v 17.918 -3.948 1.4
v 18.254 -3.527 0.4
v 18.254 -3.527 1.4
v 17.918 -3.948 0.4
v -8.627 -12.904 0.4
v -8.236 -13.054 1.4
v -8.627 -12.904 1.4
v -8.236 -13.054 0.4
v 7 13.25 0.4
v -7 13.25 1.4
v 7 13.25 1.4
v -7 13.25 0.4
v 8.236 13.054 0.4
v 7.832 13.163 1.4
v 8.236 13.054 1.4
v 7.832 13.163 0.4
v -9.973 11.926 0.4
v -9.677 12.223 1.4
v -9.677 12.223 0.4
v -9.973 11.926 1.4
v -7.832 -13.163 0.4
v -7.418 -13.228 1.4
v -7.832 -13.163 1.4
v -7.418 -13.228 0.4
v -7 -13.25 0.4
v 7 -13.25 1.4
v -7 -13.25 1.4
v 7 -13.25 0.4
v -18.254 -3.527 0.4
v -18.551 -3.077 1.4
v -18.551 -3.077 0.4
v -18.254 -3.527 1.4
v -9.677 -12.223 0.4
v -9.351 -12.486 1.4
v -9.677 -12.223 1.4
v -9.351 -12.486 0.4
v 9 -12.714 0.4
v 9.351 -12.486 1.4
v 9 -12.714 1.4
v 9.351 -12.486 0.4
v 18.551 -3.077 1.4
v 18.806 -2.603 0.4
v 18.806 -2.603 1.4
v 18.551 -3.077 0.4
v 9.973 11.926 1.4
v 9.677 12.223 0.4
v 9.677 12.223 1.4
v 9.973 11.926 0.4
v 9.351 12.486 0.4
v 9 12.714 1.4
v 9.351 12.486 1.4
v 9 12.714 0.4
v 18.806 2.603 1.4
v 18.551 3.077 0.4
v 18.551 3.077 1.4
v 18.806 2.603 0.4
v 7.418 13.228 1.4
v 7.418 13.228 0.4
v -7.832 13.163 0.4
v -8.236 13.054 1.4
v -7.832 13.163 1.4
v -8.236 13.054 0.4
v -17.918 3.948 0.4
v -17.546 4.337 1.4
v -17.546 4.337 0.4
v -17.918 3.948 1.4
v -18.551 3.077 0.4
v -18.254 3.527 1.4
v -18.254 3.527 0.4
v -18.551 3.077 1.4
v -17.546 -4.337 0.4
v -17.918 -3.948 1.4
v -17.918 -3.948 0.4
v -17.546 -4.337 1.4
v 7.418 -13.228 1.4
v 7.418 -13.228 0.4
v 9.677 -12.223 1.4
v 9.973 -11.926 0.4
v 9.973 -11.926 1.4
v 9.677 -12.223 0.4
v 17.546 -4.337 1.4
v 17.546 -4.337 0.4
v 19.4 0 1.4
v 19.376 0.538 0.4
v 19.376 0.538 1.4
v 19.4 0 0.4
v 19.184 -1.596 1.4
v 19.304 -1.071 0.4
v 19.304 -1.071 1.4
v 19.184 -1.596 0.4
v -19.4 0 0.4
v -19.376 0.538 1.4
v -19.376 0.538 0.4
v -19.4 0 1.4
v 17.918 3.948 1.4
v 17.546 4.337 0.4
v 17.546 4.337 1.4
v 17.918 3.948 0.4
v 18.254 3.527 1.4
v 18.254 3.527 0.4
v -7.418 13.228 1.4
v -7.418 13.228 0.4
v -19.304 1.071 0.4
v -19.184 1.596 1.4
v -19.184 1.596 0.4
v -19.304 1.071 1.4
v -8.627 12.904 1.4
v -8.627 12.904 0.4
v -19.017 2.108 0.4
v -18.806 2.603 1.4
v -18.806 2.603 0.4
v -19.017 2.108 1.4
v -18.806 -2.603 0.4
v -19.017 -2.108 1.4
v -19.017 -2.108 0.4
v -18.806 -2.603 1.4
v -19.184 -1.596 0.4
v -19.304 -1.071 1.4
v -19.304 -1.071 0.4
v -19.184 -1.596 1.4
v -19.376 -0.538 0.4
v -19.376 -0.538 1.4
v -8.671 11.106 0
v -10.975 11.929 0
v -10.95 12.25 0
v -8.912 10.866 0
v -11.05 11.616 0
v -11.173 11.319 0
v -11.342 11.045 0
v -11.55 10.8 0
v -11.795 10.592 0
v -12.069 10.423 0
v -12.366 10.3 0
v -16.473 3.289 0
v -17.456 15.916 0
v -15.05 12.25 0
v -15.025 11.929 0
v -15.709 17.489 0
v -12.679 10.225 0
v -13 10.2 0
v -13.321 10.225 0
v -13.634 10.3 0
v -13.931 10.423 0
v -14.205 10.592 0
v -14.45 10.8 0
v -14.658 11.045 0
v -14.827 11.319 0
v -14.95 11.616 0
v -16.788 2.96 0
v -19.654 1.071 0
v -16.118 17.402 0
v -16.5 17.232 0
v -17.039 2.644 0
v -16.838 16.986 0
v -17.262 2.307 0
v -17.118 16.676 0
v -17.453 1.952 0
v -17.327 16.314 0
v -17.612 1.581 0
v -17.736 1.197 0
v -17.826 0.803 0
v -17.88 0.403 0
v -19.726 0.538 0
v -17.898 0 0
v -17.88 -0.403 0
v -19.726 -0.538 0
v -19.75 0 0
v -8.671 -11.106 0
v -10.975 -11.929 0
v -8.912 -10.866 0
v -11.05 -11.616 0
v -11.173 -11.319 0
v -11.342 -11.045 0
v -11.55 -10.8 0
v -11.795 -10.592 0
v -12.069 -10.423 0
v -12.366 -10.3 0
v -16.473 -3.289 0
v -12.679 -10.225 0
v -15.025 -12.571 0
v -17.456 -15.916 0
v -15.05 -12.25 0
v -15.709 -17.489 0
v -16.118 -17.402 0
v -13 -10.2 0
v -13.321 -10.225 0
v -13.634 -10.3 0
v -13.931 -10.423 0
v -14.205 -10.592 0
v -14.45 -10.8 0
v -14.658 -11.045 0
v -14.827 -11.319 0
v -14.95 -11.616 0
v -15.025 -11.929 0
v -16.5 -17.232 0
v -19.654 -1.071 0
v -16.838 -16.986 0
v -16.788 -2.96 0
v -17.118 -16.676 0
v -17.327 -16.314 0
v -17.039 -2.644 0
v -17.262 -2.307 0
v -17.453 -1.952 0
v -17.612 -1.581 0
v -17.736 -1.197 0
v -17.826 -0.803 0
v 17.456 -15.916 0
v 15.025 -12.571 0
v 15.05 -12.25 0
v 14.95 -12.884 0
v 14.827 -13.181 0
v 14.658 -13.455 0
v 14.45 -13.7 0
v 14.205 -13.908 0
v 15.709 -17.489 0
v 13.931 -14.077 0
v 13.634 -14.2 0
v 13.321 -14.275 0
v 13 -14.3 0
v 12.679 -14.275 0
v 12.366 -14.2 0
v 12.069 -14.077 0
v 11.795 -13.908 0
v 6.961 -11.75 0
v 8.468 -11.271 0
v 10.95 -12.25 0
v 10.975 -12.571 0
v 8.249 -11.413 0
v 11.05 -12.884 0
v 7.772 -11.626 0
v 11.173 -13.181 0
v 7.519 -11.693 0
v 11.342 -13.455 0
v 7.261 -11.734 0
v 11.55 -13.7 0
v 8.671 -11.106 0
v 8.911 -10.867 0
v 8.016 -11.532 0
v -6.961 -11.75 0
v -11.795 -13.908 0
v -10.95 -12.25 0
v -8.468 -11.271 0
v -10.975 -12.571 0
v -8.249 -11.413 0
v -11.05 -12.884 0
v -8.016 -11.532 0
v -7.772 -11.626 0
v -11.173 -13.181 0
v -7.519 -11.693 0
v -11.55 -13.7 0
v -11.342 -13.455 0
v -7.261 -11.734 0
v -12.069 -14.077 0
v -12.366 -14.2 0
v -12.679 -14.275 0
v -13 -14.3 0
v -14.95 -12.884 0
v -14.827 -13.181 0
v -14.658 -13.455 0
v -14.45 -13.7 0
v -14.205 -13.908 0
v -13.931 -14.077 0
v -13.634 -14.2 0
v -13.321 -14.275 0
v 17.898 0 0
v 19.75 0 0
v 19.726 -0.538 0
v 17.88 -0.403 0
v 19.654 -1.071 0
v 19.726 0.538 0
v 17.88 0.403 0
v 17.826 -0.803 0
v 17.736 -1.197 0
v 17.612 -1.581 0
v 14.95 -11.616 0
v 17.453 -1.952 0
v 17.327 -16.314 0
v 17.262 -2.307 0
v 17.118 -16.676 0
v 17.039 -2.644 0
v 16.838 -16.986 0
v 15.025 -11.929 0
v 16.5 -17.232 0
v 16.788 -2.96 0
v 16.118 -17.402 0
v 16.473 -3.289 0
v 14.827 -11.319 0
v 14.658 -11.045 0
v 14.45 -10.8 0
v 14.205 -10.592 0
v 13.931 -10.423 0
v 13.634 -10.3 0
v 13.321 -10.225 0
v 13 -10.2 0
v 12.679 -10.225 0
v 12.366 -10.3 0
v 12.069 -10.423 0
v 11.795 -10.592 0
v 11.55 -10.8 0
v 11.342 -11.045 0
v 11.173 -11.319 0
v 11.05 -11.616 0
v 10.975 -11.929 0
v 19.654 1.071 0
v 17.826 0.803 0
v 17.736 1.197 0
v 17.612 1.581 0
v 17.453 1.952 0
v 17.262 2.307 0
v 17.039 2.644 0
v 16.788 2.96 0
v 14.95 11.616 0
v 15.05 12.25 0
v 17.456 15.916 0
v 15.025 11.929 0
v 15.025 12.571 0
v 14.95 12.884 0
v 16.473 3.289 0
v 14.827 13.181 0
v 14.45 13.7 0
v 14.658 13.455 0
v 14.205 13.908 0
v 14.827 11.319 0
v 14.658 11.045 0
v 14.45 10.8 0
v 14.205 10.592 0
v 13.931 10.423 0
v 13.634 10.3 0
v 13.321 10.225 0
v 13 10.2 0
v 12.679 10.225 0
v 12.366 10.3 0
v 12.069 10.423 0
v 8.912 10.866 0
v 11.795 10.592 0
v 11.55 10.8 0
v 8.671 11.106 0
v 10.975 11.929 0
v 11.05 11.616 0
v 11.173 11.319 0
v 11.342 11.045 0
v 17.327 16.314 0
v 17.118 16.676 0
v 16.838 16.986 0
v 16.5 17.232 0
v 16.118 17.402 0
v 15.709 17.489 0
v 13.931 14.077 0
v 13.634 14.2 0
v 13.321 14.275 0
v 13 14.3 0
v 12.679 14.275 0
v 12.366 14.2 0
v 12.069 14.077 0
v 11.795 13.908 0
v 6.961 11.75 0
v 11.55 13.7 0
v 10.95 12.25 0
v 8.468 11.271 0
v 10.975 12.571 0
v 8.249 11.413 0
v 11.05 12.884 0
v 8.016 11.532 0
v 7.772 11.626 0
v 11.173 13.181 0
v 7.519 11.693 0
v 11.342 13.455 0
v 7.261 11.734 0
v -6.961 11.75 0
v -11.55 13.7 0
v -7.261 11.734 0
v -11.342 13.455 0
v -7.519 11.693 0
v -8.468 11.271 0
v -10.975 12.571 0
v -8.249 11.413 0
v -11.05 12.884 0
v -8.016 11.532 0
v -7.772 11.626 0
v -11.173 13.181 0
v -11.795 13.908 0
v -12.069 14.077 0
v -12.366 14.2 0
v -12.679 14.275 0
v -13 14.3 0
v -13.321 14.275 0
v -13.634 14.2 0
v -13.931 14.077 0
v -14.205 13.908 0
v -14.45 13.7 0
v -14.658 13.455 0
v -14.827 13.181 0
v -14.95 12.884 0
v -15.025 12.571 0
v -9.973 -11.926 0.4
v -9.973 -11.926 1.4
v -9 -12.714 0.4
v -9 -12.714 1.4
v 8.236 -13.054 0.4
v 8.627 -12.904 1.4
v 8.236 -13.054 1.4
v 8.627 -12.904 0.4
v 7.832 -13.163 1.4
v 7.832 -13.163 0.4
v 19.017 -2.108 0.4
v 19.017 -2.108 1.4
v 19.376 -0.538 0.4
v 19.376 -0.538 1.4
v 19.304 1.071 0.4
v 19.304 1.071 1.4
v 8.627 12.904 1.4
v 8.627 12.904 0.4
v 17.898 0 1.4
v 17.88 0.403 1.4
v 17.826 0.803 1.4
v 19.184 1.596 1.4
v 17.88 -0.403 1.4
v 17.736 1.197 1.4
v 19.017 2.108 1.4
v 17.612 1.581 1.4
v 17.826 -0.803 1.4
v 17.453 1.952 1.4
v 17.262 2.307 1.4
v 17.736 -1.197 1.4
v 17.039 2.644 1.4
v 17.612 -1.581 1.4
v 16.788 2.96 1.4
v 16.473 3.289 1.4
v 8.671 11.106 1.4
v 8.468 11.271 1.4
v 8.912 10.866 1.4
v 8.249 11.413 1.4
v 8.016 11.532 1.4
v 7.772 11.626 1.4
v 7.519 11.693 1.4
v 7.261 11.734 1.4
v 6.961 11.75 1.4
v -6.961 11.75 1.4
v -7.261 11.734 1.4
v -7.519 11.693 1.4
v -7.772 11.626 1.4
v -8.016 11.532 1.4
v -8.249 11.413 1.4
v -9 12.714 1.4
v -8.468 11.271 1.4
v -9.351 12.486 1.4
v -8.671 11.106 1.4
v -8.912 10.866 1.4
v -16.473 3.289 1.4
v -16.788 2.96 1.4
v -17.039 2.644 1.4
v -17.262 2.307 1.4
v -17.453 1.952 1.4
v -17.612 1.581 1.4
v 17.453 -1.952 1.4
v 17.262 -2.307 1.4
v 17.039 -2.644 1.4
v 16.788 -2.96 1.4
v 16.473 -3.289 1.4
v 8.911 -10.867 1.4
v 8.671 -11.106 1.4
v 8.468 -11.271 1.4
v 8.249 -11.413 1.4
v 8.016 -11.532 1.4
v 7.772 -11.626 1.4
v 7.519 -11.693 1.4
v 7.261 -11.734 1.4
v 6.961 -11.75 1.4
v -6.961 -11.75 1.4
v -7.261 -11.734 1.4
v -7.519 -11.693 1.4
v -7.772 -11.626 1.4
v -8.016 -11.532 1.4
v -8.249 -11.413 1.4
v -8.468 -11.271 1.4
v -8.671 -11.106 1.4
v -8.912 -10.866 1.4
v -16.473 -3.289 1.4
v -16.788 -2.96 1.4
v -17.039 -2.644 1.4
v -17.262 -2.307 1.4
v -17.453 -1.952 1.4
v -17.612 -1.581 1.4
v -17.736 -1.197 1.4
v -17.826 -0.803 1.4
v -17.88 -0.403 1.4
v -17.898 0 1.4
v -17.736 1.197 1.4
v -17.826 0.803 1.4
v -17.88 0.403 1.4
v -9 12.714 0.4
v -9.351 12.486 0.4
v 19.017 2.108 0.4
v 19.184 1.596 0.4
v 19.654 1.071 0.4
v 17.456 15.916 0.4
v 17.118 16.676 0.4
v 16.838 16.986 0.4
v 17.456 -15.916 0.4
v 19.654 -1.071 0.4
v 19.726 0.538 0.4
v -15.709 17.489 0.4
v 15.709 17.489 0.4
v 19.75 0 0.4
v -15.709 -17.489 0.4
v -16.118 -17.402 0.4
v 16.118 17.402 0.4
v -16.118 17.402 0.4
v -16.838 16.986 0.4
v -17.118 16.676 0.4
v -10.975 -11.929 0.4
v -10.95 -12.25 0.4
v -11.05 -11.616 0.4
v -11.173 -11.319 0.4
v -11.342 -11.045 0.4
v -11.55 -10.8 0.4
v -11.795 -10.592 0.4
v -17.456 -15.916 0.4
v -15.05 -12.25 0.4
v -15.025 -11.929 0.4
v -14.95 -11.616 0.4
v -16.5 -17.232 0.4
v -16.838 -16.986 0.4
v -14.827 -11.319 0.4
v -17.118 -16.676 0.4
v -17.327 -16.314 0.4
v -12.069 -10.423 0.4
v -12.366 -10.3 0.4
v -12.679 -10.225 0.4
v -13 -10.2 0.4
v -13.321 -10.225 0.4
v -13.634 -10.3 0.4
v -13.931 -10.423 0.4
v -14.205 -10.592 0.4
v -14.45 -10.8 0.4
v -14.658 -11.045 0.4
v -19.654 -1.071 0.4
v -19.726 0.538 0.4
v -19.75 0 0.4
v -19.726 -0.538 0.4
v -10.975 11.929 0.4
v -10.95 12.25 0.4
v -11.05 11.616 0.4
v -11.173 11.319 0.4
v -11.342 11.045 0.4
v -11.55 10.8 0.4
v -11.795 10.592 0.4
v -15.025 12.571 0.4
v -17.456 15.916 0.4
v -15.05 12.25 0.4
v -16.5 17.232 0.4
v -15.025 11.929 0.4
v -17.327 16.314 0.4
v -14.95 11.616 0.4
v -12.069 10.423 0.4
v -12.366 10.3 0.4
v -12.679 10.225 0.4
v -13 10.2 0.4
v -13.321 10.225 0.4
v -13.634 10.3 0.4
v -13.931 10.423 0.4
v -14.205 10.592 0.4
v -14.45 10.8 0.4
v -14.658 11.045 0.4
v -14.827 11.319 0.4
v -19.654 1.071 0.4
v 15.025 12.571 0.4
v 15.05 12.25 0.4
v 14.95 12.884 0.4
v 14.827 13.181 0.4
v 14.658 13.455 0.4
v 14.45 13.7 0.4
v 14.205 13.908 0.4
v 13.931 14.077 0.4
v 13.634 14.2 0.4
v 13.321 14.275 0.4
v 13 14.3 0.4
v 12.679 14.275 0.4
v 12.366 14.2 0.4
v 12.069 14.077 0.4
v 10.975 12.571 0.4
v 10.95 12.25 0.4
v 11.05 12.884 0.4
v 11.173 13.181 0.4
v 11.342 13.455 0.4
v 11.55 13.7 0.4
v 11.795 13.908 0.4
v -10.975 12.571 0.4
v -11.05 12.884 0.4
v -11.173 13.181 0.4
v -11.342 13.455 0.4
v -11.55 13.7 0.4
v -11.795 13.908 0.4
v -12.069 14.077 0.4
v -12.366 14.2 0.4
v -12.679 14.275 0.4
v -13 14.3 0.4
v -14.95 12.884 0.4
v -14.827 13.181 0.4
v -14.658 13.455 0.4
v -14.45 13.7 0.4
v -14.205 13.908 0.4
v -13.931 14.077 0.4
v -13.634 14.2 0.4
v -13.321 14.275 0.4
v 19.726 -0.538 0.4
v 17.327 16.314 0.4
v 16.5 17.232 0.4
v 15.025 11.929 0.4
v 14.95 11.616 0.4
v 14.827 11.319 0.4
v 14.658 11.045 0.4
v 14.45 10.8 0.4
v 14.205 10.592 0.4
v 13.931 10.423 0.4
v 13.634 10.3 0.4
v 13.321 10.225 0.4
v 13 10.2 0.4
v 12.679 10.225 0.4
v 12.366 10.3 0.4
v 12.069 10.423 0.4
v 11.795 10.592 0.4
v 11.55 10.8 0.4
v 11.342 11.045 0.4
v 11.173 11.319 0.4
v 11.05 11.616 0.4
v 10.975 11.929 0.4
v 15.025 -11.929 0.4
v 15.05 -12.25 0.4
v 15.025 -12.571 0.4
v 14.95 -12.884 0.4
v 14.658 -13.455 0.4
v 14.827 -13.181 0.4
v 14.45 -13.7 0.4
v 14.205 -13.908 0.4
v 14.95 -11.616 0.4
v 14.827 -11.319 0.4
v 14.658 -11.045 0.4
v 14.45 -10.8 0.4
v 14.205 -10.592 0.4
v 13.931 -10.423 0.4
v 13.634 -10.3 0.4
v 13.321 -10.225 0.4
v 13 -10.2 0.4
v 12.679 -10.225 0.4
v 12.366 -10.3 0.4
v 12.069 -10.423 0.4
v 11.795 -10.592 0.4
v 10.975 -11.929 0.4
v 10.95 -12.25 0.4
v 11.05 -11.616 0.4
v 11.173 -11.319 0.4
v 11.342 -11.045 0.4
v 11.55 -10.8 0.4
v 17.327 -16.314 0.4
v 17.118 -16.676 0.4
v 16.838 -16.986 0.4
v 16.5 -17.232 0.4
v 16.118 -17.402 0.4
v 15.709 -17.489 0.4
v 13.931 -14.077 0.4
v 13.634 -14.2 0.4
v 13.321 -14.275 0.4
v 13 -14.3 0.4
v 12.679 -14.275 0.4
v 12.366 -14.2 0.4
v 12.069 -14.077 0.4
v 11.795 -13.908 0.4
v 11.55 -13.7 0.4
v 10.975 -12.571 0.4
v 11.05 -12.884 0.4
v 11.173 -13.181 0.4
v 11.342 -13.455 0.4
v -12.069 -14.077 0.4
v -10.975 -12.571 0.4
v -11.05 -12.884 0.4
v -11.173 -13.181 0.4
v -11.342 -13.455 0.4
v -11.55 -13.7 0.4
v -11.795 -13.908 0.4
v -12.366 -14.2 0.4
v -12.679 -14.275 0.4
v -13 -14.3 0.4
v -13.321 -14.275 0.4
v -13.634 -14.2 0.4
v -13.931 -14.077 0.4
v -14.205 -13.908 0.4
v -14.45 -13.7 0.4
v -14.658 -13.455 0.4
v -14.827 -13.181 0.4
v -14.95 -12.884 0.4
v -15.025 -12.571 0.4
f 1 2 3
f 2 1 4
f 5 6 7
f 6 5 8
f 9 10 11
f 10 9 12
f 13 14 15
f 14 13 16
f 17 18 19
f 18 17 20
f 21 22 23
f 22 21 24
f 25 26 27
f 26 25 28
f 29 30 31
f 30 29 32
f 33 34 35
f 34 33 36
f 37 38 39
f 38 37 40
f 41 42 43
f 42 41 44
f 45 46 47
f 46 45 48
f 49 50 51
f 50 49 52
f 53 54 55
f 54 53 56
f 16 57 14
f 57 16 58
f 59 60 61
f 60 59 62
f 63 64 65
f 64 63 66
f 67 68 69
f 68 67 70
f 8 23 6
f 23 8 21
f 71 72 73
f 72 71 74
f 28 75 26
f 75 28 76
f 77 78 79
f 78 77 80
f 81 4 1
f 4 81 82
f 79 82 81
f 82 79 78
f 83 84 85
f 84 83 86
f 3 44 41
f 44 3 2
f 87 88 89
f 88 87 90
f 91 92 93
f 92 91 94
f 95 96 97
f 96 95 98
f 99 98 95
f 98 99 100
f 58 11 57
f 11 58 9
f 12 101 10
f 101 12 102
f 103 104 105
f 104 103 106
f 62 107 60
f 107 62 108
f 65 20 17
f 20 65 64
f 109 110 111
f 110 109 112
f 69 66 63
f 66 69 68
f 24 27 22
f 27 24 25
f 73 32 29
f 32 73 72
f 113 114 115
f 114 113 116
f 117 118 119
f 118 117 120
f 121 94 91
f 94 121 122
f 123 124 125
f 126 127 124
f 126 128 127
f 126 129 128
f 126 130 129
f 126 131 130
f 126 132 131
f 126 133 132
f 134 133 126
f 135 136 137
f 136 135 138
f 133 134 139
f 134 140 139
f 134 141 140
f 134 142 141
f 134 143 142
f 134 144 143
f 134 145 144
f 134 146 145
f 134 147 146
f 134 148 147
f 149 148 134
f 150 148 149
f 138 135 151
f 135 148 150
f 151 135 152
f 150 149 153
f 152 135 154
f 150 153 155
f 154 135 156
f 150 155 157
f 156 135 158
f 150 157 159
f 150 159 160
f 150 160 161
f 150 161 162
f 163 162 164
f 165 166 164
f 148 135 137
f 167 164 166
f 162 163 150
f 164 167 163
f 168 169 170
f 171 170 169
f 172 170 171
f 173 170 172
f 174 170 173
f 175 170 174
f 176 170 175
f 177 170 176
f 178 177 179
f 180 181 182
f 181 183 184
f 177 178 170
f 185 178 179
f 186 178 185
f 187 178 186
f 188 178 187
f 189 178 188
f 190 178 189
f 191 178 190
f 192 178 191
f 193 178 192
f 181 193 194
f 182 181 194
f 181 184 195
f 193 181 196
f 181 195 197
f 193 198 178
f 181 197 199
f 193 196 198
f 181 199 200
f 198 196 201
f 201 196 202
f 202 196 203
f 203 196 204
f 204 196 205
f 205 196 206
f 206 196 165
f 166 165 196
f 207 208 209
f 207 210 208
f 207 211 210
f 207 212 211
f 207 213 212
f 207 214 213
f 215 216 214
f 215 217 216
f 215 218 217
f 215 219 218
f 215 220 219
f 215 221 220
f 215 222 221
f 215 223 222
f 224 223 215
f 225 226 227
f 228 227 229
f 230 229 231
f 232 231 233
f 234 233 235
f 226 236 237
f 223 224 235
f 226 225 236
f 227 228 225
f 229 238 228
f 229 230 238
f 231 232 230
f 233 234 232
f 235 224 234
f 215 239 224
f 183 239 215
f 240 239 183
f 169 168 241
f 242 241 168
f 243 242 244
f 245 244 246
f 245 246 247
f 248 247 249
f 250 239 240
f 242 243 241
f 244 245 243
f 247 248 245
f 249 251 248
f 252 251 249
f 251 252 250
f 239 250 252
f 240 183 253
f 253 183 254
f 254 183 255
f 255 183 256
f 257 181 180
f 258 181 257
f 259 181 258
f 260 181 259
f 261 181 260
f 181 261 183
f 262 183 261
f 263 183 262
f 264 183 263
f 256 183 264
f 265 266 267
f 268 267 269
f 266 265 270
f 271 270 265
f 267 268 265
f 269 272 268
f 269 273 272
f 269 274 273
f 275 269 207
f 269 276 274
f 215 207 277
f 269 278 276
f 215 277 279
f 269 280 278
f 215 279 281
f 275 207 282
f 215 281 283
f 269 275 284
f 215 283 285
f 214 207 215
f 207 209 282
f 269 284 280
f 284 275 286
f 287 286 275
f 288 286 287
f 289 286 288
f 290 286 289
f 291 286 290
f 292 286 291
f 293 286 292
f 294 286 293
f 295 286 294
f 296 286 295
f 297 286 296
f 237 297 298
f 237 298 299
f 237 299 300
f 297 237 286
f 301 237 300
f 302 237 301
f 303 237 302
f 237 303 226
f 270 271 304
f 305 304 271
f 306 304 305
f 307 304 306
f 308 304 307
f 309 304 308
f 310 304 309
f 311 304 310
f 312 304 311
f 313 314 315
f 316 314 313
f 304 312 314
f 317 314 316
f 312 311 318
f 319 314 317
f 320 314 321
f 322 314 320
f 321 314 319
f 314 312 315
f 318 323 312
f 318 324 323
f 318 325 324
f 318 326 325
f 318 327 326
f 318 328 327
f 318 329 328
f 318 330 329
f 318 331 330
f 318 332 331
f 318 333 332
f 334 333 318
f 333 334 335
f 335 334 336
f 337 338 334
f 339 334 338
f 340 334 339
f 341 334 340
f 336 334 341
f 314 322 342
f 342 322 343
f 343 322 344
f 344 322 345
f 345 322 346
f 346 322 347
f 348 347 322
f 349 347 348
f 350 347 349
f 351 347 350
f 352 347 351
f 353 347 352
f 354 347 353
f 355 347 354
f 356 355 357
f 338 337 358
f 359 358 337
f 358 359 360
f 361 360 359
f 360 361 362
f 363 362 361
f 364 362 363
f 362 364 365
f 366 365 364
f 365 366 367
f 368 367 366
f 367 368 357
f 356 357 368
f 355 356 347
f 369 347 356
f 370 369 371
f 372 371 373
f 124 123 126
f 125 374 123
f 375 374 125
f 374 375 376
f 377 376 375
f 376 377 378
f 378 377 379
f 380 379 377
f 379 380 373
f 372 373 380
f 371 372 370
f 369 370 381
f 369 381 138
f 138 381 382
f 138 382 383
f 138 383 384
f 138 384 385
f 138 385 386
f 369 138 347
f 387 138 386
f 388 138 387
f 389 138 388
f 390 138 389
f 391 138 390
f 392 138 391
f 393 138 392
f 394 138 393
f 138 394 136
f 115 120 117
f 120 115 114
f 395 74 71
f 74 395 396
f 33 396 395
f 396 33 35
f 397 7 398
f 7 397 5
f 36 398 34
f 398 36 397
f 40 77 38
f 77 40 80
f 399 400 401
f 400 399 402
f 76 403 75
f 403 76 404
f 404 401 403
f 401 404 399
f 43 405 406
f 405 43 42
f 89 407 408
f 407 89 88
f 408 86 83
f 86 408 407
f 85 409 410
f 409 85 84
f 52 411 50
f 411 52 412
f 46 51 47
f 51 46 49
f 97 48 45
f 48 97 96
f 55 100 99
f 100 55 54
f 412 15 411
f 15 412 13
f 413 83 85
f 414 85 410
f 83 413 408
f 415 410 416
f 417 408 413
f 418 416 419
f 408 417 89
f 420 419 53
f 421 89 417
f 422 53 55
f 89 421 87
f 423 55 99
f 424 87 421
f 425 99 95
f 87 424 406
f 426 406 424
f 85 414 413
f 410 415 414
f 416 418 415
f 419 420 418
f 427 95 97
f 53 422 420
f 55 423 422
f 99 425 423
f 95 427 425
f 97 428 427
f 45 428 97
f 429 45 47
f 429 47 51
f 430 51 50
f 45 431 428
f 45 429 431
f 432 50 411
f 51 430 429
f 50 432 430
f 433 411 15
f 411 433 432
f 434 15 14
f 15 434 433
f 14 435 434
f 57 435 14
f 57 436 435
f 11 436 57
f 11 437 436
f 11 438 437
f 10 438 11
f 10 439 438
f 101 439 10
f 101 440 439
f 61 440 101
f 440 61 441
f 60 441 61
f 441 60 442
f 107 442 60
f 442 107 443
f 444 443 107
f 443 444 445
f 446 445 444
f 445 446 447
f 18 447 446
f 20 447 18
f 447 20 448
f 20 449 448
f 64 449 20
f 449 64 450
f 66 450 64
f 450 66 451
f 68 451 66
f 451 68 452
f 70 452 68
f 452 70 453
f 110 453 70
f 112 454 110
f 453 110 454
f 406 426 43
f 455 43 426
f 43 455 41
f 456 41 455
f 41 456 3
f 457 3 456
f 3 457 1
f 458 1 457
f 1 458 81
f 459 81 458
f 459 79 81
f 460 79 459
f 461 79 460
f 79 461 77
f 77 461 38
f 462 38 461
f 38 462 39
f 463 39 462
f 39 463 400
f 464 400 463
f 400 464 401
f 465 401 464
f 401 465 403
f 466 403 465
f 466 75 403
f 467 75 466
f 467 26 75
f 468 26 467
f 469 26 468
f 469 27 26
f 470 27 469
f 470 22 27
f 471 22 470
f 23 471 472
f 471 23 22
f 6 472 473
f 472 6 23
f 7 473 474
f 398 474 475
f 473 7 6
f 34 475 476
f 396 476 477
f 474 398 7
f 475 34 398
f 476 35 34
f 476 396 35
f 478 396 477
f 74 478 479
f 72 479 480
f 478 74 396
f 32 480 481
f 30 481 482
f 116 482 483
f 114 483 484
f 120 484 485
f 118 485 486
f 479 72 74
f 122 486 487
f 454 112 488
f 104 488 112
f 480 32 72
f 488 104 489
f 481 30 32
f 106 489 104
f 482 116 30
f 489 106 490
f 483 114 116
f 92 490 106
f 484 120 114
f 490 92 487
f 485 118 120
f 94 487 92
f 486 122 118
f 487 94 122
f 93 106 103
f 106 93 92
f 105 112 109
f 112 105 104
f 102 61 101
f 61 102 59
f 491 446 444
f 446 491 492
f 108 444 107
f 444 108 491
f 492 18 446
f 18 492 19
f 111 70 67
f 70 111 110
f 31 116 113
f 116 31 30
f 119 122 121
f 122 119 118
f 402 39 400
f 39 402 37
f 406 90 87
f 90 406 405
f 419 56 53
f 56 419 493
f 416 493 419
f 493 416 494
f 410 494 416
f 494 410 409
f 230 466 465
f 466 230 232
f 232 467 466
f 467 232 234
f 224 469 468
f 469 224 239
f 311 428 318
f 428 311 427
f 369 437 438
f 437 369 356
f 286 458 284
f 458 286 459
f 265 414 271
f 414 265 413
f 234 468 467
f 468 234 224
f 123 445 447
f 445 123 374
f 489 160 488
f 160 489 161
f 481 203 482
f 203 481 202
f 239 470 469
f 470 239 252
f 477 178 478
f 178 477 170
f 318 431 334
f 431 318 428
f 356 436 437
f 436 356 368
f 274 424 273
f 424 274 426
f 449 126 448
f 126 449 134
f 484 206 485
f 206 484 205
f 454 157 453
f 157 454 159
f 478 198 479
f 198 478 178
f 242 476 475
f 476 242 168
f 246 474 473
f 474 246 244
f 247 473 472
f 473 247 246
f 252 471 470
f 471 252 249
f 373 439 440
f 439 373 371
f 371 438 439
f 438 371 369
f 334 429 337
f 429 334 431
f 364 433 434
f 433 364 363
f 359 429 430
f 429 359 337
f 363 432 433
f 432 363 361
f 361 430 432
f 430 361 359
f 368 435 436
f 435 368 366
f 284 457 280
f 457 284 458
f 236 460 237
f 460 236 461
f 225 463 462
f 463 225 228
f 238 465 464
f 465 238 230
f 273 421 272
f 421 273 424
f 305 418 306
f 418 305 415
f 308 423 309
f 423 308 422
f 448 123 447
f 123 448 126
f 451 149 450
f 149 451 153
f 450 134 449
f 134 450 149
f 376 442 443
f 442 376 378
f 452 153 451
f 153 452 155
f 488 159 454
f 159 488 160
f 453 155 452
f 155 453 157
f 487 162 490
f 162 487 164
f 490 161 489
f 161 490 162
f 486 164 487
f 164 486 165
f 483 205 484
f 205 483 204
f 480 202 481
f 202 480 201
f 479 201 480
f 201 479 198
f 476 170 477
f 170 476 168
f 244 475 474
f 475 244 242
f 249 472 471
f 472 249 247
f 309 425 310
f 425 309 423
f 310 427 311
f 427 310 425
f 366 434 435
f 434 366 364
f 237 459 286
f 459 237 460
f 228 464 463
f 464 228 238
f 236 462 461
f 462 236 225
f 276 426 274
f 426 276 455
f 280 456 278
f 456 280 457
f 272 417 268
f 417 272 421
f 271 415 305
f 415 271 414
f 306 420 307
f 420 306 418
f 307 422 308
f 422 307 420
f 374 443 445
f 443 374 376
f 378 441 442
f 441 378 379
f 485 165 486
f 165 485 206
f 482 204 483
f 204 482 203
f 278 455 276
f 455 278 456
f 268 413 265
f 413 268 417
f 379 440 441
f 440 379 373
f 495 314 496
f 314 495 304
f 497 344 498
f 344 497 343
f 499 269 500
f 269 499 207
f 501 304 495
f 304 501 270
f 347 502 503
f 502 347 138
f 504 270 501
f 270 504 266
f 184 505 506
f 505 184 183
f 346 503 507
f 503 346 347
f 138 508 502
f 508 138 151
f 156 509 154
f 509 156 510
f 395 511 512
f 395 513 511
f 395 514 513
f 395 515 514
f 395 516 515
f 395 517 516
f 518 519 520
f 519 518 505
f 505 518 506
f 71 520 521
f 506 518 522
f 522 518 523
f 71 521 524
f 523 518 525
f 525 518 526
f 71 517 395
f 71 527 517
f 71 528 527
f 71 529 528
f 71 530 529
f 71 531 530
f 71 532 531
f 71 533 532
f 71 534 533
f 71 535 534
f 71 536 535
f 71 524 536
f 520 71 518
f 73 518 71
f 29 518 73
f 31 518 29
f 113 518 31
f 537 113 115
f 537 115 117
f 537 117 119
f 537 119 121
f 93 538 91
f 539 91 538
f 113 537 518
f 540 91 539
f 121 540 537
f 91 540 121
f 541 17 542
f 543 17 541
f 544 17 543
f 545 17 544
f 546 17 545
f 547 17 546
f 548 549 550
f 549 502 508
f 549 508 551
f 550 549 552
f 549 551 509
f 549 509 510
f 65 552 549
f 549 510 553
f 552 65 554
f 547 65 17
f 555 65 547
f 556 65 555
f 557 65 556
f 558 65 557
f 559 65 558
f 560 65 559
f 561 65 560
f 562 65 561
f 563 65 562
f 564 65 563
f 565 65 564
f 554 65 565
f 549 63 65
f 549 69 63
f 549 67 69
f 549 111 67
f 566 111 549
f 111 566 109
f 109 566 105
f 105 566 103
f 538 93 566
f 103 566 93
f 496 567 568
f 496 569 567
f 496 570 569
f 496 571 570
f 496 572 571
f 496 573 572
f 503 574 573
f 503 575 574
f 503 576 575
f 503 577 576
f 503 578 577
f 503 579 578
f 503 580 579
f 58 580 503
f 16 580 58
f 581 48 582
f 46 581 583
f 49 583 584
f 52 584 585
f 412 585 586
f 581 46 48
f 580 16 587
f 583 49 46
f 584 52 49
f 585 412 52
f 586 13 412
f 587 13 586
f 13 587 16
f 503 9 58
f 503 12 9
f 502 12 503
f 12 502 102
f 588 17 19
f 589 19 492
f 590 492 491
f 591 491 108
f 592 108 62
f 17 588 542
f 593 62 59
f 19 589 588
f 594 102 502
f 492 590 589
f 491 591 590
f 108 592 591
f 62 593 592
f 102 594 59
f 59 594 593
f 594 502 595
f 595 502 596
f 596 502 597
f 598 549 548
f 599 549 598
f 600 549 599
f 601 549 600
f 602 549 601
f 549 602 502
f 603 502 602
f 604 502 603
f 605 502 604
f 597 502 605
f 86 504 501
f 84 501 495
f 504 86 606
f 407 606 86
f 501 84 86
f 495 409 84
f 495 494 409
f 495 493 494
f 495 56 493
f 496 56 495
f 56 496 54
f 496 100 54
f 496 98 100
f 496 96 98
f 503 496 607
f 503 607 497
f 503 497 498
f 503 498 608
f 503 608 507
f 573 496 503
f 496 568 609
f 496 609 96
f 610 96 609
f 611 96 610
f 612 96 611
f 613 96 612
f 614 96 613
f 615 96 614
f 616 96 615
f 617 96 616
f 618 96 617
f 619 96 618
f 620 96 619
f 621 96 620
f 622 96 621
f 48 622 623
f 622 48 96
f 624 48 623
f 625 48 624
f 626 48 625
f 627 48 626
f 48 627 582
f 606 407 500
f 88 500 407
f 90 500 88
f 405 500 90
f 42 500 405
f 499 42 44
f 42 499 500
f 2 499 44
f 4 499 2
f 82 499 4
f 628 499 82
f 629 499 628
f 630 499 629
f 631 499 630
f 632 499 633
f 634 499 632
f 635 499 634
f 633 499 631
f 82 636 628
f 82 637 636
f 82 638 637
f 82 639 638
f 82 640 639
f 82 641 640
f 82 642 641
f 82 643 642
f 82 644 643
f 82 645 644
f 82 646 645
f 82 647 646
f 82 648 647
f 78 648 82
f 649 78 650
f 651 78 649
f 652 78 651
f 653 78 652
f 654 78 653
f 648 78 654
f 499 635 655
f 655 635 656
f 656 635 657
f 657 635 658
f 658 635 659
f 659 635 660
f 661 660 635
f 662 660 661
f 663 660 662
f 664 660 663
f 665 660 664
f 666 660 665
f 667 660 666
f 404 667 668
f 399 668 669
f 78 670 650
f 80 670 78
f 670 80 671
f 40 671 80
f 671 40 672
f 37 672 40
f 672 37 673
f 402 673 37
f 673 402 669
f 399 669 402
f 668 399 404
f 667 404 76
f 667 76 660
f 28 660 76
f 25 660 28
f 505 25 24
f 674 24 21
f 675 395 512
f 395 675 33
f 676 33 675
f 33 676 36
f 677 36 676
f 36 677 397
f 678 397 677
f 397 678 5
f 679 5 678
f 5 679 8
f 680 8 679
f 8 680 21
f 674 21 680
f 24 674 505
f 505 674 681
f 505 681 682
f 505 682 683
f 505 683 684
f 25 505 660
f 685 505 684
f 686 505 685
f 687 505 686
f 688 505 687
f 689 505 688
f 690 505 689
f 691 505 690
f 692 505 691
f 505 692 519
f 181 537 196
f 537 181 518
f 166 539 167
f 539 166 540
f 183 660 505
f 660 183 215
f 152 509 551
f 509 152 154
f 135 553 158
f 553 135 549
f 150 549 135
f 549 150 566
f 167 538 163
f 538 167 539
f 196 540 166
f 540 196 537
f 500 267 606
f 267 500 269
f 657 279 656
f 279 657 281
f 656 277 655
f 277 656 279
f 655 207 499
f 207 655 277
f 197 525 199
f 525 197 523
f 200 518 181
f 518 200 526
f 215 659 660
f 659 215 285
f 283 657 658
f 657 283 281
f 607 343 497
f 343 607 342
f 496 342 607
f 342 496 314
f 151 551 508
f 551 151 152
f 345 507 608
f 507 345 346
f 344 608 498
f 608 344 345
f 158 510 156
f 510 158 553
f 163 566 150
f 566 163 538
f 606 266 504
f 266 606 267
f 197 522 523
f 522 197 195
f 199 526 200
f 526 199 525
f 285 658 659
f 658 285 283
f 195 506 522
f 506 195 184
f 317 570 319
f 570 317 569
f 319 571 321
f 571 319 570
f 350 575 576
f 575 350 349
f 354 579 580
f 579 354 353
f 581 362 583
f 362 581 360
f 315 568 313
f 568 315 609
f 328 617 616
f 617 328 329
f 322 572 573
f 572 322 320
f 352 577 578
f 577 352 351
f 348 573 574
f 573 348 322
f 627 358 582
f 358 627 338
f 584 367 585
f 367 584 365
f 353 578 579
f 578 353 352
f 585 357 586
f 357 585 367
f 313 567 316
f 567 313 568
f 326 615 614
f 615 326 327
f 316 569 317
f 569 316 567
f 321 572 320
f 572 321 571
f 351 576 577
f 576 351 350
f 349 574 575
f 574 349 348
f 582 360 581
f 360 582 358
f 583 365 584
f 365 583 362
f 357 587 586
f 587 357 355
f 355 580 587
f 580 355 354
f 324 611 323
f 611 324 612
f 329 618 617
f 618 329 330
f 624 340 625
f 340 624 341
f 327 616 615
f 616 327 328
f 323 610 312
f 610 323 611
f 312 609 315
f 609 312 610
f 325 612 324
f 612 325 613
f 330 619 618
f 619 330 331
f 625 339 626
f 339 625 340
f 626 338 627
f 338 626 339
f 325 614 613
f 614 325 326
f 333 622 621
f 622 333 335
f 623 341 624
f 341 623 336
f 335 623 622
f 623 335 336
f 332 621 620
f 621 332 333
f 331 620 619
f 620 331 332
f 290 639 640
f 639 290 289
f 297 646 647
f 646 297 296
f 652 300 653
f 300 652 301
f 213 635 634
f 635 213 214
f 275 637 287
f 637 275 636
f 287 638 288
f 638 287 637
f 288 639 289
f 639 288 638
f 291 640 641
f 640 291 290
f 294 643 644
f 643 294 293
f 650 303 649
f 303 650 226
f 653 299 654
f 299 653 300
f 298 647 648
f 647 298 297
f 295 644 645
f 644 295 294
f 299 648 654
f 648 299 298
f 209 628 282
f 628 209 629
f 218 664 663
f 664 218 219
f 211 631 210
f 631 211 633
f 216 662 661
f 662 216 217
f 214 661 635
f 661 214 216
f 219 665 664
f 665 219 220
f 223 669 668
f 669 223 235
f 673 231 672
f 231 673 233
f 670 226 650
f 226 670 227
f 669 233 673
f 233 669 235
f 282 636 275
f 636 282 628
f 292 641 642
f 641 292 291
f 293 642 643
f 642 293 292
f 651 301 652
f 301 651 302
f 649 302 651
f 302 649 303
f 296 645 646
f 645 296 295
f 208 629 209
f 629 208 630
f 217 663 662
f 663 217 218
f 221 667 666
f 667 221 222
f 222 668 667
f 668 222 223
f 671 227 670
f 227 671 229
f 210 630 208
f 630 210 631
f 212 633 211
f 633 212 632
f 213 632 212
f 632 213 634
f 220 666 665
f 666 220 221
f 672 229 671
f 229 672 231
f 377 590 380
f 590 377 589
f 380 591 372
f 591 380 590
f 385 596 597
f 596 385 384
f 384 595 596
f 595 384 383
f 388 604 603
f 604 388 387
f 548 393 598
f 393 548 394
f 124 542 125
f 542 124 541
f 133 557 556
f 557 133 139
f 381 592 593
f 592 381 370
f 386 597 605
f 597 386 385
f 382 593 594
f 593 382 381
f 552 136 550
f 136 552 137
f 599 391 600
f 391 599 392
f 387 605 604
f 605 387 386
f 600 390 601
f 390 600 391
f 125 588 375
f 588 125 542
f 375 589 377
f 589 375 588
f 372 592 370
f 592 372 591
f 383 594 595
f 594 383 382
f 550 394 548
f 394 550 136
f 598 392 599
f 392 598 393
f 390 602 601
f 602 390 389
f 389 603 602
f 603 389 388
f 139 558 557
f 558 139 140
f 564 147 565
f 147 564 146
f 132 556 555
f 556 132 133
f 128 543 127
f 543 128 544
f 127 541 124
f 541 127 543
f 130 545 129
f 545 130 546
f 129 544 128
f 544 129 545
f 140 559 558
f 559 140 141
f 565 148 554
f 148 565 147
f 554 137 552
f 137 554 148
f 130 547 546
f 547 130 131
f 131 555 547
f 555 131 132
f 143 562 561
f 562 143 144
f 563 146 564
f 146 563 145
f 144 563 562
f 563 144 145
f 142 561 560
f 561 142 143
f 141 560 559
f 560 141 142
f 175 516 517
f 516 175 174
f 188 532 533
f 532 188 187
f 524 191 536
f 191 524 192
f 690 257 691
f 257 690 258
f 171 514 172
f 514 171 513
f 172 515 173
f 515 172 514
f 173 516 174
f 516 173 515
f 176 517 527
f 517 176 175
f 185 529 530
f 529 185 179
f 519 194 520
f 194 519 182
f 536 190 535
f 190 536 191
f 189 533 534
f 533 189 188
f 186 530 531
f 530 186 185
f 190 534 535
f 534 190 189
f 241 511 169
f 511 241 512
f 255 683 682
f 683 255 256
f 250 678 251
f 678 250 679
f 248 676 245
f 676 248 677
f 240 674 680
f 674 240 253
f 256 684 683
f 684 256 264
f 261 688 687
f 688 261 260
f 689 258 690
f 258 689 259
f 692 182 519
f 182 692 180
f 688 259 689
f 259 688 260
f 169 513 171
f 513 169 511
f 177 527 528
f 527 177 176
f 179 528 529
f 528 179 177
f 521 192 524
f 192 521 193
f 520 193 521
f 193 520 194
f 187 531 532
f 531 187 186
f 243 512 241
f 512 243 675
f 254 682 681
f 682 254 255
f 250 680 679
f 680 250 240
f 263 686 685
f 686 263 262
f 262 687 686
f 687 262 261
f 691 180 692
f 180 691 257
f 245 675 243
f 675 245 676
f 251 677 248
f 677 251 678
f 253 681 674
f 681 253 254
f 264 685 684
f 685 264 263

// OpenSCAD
end_d = 12;
top_d = 8;
h = 1.4;
block_d = 4;

module _block_form() {
    hull() {
        translate([35/2-block_d/2,35/2-block_d/2,0])
        cylinder(d=block_d,h=0.4,$fn=30);

        translate([-35/2+block_d/2,35/2-block_d/2,0])
        cylinder(d=block_d,h=0.4,$fn=30);

        translate([35/2-block_d/2,-35/2+block_d/2,0])
        cylinder(d=block_d,h=0.4,$fn=30);

        translate([-35/2+block_d/2,-35/2+block_d/2,0])
        cylinder(d=block_d,h=0.4,$fn=30);

        translate([39.5/2-end_d/2,0,0])
        cylinder(d=end_d,h=0.4,$fn=70);

        translate([-39.5/2+end_d/2,0,0])
        cylinder(d=end_d,h=0.4,$fn=70);
    }
}

module _seal_form() {
    hull() {
        translate([38.8/2-end_d/2,0,0])
        cylinder(d=end_d,h=h,$fn=70);

        translate([-38.8/2+end_d/2,0,0])
        cylinder(d=end_d,h=h,$fn=70);

        translate([14/2,26.5/2-top_d/2,0])
        cylinder(d=top_d,h=h,$fn=60);

        translate([-14/2,26.5/2-top_d/2,0])
        cylinder(d=top_d,h=h,$fn=60);

        translate([14/2,-26.5/2+top_d/2,0])
        cylinder(d=top_d,h=h,$fn=60);

        translate([-14/2,-26.5/2+top_d/2,0])
        cylinder(d=top_d,h=h,$fn=60);
    }
}

module seal() {
    union() {
        difference() {
            _seal_form();

            linear_extrude(h)
            offset(r=-1.5)
            projection(cut=true)
            _seal_form();
        }
        difference() {
            _block_form();

            linear_extrude(h)
            offset(r=-1.5)
            projection(cut=true)
            _seal_form();
            
            translate([26/2,24.5/2,0])
            cylinder(d=4.1,h=5,center=true,$fn=40);

            translate([26/2,-24.5/2,0])
            cylinder(d=4.1,h=5,center=true,$fn=40);

            translate([-26/2,24.5/2,0])
            cylinder(d=4.1,h=5,center=true,$fn=40);

            translate([-26/2,-24.5/2,0])
            cylinder(d=4.1,h=5,center=true,$fn=40);

        }
    }
}

//_block_form();
//_seal_form();
seal();
